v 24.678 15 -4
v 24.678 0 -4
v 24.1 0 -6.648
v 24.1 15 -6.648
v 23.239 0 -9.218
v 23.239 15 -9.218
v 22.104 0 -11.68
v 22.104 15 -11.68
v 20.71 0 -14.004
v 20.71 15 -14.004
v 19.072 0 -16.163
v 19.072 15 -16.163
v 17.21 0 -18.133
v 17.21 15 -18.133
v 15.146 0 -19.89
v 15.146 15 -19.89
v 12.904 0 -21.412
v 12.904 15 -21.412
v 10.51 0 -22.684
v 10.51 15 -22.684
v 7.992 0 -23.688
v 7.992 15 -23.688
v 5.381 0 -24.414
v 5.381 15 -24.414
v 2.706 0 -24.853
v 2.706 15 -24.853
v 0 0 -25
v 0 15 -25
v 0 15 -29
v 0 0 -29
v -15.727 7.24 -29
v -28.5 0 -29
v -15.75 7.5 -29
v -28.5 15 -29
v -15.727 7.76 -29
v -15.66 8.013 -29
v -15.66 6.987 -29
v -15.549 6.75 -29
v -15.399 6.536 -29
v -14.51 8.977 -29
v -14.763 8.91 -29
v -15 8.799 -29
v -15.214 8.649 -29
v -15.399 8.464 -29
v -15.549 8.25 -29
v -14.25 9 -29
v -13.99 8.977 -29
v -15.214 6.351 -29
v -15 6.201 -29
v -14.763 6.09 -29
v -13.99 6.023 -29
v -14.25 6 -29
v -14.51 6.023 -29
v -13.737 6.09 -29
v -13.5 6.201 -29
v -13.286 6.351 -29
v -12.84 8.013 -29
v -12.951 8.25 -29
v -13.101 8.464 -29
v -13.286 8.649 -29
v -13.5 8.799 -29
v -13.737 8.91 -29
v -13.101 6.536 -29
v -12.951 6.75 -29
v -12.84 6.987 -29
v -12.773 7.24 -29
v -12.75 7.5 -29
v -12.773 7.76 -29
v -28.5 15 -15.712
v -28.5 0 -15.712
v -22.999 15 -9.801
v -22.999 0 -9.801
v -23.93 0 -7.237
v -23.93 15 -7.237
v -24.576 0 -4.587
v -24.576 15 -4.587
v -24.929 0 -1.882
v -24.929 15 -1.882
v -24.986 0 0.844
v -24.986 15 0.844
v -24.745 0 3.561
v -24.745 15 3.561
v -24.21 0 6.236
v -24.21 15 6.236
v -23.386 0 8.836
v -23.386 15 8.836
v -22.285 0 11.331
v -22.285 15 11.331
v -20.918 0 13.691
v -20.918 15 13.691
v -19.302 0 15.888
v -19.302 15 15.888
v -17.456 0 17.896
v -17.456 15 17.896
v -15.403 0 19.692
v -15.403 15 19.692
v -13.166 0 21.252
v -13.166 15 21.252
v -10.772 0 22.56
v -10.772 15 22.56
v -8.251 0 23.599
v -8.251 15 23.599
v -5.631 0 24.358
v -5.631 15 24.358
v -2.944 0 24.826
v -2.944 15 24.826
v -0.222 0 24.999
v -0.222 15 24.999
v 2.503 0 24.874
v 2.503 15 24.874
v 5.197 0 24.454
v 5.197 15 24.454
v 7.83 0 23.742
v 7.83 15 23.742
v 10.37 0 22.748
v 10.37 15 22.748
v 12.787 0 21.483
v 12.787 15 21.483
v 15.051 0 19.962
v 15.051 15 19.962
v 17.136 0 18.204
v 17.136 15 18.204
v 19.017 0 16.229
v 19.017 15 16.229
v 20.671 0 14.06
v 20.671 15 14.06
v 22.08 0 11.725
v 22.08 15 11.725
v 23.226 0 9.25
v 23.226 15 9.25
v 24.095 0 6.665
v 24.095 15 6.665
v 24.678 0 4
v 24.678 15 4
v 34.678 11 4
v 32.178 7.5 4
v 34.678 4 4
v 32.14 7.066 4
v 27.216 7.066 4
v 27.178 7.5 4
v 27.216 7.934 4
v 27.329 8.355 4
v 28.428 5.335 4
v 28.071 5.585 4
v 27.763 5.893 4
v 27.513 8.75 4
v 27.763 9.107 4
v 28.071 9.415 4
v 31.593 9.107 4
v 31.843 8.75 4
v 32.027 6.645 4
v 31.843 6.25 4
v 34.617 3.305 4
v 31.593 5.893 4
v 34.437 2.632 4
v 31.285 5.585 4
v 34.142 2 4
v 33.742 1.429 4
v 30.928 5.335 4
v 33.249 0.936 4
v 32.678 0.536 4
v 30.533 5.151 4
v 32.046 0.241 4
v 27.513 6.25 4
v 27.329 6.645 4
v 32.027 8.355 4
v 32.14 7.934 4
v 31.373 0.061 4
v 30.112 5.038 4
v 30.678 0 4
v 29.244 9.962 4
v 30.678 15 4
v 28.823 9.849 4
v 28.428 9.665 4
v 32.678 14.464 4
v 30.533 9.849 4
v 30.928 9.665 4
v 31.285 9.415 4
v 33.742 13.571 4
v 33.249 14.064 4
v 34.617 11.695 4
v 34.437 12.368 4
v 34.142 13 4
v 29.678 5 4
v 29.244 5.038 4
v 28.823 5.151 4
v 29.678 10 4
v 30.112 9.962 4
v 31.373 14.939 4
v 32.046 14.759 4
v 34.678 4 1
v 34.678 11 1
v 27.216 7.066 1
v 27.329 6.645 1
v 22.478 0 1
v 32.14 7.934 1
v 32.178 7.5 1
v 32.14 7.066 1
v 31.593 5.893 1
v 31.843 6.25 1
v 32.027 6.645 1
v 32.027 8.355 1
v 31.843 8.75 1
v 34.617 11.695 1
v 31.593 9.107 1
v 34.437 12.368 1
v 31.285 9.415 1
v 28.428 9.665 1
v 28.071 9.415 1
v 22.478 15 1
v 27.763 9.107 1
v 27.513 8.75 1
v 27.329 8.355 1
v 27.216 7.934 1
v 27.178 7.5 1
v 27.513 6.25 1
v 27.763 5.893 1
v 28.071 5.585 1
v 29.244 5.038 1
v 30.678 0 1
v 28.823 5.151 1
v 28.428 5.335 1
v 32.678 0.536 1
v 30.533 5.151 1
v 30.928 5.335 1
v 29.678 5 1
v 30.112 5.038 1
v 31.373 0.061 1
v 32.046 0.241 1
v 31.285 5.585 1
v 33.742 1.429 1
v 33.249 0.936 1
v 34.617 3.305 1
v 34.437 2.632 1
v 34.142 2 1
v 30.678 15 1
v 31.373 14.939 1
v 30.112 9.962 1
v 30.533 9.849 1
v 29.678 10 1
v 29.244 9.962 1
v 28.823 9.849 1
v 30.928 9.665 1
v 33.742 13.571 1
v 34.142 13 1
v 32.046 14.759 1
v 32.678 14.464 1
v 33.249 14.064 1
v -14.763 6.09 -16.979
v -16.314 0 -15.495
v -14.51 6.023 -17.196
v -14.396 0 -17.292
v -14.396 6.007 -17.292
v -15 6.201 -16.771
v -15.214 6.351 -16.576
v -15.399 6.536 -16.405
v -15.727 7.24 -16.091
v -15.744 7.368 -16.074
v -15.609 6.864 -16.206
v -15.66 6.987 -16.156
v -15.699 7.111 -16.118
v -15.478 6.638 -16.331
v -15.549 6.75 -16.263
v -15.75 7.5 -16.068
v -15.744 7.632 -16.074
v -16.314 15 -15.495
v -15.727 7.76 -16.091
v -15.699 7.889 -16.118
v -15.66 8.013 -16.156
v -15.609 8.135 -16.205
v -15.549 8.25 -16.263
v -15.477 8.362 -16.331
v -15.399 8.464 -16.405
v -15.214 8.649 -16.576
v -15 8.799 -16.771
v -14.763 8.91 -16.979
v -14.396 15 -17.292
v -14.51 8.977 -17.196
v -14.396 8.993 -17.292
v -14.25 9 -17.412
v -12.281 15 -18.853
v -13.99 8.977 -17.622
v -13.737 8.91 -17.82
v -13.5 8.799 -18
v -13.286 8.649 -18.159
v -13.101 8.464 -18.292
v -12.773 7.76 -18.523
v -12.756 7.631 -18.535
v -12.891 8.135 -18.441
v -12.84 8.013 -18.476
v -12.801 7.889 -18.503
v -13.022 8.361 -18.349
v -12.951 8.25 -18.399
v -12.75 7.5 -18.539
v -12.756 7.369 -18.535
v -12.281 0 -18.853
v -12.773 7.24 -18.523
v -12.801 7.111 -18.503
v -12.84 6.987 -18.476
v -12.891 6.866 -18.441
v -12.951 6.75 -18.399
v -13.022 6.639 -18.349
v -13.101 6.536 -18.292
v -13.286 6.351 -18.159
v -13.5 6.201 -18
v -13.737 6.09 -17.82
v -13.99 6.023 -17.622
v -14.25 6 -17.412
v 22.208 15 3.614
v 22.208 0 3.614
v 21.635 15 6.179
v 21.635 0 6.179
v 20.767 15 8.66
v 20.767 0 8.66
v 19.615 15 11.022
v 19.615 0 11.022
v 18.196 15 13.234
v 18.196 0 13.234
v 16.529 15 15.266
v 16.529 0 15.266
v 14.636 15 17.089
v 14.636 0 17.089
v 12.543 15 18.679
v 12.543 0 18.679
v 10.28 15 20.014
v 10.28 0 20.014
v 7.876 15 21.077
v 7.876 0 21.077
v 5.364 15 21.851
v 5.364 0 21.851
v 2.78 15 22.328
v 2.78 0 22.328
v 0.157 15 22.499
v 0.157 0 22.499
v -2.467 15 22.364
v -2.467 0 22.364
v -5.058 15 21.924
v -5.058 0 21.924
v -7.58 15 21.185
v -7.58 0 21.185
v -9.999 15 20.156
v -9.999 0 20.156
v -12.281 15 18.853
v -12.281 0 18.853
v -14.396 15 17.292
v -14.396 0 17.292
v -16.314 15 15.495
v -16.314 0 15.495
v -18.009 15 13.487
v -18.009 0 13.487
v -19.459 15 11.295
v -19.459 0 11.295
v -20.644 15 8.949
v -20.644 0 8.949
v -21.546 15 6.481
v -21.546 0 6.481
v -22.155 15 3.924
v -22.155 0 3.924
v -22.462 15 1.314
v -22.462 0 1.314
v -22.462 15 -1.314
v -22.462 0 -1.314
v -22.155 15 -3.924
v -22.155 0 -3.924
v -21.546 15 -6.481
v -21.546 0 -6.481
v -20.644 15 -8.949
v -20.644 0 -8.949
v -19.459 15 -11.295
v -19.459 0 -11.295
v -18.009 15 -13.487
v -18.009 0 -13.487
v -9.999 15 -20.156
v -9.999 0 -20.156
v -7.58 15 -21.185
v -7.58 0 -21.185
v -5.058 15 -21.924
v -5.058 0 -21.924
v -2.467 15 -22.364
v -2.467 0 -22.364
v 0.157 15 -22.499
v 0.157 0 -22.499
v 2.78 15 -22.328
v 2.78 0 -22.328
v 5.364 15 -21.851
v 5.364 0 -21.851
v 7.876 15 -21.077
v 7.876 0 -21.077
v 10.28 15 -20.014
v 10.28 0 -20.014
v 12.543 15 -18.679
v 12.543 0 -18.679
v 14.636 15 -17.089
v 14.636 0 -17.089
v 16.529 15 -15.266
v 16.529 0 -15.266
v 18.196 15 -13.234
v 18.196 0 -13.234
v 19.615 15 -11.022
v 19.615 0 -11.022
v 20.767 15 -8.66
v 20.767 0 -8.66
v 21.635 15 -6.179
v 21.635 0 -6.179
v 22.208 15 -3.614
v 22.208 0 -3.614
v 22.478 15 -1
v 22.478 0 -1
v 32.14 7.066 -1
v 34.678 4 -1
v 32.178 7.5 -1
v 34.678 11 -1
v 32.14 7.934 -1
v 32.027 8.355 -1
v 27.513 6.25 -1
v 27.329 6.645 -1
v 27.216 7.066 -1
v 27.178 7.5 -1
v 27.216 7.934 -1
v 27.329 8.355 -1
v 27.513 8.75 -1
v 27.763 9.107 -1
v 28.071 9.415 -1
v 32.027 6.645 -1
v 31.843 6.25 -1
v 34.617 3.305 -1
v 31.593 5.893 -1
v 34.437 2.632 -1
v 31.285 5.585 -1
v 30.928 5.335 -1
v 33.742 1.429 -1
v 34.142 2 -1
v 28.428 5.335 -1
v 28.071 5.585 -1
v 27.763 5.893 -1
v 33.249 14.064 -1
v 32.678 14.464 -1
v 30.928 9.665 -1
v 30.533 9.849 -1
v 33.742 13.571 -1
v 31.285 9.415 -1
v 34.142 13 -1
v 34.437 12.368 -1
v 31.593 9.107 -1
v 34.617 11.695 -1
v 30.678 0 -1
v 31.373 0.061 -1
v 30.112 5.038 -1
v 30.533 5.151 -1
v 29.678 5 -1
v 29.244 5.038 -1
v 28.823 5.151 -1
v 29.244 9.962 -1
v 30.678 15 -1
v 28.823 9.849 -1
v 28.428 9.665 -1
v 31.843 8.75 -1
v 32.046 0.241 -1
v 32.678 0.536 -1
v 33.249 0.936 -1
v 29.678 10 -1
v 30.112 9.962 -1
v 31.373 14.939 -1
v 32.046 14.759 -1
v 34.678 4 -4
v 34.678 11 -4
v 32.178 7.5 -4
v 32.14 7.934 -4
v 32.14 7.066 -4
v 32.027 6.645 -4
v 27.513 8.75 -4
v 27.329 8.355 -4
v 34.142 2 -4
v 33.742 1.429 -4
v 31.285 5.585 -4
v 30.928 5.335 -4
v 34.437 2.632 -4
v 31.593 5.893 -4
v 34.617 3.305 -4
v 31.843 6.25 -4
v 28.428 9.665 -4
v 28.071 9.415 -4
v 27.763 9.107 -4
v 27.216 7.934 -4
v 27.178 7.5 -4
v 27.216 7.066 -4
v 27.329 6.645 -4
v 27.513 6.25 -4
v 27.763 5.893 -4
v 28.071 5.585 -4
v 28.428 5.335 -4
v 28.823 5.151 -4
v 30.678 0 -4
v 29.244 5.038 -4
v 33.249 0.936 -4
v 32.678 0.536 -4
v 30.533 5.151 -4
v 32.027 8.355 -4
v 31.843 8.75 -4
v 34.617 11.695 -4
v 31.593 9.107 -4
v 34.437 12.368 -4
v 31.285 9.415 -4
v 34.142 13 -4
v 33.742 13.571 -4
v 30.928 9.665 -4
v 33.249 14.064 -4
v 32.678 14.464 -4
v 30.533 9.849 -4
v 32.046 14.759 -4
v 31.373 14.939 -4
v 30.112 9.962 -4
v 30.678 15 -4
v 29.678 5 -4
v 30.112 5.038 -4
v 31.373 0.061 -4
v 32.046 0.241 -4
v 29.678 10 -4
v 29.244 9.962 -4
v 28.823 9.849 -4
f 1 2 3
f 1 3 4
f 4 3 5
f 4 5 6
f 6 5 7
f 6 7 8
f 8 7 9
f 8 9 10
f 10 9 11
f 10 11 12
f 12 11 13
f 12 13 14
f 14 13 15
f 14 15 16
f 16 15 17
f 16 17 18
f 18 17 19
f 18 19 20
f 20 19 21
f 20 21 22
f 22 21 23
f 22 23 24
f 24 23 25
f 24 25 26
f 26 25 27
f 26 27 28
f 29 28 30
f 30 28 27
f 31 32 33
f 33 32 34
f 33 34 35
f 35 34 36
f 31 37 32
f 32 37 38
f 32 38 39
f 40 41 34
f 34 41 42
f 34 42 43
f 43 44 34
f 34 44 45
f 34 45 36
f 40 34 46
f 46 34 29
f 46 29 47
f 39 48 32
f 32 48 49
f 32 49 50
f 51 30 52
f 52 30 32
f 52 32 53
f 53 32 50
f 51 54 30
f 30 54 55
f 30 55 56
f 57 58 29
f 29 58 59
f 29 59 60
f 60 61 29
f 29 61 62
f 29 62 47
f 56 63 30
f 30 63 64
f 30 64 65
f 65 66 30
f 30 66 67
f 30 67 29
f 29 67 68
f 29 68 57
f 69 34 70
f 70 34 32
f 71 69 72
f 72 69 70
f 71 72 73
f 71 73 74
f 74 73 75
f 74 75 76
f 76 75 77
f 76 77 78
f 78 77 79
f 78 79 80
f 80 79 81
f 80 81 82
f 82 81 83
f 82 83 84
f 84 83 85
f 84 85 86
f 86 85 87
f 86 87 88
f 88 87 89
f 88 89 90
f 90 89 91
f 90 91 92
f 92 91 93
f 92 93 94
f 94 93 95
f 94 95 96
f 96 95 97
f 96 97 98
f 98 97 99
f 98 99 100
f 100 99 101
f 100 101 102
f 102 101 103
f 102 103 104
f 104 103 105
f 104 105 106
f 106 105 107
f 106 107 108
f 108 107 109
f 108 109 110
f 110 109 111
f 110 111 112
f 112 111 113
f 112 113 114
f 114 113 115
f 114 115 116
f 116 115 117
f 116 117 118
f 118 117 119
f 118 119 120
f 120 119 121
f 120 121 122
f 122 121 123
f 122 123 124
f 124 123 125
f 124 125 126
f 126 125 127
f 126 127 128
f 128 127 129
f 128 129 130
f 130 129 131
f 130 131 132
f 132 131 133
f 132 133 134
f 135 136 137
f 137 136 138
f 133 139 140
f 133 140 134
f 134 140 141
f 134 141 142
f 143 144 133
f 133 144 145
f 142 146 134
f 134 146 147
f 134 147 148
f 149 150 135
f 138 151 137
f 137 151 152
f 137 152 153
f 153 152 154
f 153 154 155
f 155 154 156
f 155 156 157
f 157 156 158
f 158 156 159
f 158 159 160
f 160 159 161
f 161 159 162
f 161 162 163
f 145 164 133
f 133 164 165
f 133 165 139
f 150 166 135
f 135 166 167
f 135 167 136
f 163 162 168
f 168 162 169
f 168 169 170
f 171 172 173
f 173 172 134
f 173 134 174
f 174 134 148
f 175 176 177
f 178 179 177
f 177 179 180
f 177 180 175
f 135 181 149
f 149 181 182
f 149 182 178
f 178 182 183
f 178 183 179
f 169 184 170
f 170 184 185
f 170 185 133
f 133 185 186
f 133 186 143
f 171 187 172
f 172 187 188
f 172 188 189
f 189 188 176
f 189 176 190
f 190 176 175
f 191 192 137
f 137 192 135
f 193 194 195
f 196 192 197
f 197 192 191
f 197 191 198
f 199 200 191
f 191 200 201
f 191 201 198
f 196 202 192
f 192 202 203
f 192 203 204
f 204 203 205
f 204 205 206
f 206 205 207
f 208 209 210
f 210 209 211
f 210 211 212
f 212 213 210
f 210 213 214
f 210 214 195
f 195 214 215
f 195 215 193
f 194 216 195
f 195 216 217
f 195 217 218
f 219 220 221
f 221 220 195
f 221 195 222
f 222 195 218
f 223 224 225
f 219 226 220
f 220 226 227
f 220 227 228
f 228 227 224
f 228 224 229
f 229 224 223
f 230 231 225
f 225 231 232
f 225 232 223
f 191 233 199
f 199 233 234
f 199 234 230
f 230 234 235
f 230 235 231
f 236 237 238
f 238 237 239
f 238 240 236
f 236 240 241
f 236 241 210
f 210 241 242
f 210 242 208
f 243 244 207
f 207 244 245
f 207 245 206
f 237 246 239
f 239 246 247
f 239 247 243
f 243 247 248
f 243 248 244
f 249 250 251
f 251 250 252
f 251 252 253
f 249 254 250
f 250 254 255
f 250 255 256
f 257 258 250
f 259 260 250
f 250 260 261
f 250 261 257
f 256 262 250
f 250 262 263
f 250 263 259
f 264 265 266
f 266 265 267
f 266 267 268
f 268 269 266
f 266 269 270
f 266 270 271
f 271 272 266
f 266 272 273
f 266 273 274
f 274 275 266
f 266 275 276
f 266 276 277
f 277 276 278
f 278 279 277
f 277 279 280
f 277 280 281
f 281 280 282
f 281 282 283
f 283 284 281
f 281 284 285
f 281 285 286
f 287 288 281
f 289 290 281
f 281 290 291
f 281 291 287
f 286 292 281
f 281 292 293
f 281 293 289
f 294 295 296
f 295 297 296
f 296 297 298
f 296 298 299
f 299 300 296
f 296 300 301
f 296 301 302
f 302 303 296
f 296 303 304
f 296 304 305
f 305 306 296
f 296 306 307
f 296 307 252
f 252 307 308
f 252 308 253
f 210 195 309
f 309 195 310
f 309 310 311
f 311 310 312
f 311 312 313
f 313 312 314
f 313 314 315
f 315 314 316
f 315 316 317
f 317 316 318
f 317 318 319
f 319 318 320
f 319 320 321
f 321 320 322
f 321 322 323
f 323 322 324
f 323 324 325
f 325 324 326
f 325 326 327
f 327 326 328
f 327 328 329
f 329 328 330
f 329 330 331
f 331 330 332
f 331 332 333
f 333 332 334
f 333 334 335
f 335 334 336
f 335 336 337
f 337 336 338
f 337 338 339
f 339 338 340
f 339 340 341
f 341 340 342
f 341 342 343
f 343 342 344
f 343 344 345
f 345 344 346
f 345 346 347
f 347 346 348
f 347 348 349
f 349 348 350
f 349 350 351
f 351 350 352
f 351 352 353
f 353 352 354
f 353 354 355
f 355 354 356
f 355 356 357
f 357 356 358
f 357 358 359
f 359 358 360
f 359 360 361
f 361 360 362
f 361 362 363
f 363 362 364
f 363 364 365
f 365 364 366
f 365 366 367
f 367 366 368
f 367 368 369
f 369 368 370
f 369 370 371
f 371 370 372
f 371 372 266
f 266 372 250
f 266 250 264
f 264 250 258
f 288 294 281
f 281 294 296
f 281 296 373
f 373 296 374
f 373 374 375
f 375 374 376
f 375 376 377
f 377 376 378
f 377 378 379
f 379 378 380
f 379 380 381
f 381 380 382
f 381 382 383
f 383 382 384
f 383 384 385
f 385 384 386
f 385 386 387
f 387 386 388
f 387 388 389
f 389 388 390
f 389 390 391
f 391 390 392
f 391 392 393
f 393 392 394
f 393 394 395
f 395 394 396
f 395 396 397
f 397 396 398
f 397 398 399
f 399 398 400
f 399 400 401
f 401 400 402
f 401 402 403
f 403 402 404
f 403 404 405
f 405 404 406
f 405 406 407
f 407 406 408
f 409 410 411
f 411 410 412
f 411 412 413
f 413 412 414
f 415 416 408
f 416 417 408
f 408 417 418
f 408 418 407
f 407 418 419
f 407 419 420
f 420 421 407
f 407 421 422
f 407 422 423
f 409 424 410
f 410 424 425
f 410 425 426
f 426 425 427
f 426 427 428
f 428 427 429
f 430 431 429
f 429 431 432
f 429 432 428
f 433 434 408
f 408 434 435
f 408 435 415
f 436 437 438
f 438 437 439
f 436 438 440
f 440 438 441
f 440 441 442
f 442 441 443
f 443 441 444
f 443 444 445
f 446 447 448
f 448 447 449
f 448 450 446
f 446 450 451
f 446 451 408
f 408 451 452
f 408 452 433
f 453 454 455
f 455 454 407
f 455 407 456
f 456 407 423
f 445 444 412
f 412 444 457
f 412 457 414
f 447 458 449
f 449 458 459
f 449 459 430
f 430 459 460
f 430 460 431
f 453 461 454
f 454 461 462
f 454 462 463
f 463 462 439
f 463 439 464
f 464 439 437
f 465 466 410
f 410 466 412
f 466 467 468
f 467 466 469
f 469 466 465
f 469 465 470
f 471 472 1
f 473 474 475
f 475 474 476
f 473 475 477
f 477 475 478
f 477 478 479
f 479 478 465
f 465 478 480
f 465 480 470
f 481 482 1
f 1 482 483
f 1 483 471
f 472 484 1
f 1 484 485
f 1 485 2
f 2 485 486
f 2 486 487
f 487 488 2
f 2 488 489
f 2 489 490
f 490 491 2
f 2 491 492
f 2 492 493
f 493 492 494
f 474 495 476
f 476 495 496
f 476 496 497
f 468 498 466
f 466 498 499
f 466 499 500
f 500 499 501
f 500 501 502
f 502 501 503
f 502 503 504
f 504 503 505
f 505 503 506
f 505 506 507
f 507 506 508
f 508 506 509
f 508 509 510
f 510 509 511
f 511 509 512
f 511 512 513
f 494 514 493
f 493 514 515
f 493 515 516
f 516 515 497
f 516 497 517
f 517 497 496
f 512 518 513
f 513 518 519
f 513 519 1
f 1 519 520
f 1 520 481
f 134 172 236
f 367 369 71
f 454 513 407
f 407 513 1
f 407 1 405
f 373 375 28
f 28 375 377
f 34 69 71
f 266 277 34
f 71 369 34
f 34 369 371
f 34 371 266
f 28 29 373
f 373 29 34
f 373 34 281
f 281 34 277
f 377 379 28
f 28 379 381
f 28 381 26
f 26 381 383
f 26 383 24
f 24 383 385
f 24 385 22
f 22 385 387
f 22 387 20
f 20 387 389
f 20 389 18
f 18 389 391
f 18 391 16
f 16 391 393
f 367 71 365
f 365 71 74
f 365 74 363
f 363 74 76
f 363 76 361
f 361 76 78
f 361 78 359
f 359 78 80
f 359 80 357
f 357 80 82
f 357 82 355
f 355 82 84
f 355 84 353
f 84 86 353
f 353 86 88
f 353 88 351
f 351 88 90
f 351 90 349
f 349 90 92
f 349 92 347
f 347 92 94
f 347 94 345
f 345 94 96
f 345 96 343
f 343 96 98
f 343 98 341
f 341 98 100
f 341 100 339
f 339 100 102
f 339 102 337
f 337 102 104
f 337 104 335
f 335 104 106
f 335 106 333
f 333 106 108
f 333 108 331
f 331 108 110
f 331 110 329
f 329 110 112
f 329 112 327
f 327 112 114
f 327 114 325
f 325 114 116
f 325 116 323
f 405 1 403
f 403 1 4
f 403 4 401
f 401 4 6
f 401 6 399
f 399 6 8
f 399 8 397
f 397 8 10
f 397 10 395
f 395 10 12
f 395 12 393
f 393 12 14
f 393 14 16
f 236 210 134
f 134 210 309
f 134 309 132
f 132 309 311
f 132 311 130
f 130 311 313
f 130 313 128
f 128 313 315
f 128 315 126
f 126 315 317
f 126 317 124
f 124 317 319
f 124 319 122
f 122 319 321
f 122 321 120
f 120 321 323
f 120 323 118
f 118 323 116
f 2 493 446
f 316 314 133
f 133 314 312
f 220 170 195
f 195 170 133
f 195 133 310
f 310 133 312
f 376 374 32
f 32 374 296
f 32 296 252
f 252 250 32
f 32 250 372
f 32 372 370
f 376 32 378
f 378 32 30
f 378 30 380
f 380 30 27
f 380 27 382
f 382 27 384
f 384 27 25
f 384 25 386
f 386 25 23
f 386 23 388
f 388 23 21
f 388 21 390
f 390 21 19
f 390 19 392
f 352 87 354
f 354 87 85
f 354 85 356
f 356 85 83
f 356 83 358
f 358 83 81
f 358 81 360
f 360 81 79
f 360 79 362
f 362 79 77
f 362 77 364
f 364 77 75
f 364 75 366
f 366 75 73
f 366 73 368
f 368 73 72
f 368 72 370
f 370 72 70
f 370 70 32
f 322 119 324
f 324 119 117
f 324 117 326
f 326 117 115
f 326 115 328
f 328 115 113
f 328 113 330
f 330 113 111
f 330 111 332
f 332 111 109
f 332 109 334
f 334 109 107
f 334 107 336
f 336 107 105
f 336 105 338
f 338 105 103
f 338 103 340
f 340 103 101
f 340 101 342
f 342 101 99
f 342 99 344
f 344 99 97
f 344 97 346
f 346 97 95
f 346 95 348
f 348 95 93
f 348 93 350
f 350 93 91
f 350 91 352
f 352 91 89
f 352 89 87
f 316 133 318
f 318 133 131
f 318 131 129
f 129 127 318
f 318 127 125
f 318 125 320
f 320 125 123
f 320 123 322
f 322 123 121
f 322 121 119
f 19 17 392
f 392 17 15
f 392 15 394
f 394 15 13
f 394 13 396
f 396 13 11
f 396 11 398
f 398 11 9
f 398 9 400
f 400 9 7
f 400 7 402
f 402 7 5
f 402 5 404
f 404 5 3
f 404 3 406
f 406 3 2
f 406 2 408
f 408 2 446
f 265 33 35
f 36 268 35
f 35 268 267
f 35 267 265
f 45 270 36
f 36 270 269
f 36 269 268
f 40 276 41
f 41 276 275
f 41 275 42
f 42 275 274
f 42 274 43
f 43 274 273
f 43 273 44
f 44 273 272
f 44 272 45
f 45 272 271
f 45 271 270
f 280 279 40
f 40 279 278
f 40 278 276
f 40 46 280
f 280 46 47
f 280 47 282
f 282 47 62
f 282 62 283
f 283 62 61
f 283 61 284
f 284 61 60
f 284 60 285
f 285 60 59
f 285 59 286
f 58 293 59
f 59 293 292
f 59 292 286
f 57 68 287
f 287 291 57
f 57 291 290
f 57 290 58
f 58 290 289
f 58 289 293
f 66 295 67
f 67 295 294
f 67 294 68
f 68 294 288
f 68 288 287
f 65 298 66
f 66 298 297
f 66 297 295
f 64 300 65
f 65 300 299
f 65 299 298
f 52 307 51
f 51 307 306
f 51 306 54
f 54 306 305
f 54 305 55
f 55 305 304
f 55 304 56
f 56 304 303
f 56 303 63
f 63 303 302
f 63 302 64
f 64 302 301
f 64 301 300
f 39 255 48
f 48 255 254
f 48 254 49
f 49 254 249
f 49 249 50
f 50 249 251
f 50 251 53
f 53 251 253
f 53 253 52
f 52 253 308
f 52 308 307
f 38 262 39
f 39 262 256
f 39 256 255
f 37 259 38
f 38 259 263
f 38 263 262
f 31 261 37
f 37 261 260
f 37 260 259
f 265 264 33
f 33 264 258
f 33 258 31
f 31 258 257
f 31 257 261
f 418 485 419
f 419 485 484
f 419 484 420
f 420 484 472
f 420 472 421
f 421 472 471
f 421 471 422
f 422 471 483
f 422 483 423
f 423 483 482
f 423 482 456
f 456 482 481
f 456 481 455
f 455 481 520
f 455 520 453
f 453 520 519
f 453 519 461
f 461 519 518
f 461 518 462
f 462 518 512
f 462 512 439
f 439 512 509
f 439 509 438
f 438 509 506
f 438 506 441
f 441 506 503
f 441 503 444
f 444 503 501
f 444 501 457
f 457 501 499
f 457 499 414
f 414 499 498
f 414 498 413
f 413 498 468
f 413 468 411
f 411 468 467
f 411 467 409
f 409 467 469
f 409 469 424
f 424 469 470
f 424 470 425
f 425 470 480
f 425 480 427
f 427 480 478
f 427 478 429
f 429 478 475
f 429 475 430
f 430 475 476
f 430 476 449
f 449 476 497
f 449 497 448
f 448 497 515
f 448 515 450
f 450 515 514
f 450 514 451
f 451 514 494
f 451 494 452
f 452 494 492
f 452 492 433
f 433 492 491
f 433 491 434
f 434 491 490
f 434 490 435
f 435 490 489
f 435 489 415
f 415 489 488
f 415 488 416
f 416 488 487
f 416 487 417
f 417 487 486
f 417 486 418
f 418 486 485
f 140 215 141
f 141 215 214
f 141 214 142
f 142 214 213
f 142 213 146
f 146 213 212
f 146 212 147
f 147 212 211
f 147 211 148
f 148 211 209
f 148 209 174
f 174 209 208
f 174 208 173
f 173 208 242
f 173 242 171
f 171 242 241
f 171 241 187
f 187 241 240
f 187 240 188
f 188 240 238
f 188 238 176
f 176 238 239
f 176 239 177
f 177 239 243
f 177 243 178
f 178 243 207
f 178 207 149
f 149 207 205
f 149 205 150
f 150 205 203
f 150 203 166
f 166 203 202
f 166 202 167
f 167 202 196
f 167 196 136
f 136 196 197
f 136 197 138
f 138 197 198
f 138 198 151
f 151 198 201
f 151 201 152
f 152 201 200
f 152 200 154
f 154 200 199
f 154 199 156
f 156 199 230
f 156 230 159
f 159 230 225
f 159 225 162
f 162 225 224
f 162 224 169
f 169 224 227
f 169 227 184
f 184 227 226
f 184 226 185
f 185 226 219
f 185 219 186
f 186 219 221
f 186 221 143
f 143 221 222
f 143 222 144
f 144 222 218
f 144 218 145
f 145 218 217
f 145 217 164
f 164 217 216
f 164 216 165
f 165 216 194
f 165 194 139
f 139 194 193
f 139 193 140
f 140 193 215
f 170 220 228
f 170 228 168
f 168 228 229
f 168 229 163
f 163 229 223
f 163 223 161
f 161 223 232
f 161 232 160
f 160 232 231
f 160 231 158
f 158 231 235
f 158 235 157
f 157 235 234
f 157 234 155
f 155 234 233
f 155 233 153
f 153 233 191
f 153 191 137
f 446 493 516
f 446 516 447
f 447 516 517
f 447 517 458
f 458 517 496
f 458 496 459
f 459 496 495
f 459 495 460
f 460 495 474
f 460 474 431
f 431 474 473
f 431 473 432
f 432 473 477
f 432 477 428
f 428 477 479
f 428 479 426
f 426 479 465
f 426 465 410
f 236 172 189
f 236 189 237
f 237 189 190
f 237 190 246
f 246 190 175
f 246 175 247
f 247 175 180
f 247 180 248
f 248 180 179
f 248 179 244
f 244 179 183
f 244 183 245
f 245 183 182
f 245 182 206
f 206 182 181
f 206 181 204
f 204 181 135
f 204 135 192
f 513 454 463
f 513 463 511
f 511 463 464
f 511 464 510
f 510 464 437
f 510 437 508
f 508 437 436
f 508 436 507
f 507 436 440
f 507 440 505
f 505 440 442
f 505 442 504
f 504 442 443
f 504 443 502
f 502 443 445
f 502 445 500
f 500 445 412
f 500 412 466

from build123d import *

# Parameters (mm, degrees)
SALIENTE_EXTRUIR1_DEPTH = 15
CROQUIS2_R              = 1.5
CORTAR_EXTRUIR1_DEPTH   = 17
CROQUIS3_R              = 2.5
CORTAR_EXTRUIR2_DEPTH   = 17
REDONDEO1_R             = 4


with BuildPart() as part:
    # Croquis1 → Saliente-Extruir1 (new body)
    with BuildSketch(Plane(origin=(0, 0, 0), x_dir=(1, 0, 0), z_dir=(0, 1, 0))):
        with BuildLine():
            Line((0, 25), (0, 29))
            Line((0, 29), (-28.5, 29))
            Line((-28.5, 29), (-28.5, 15.712290503))
            Line((-28.5, 15.712290503), (-22.998889471, 9.800565448))
            ThreePointArc((-22.998889471, 9.800565448), (-6.951164798, -24.014189721), (24.677925359, -4))
            Line((24.677925359, -4), (34.677925359, -4))
            Line((34.677925359, -4), (34.677925359, -1))
            Line((34.677925359, -1), (22.477766793, -1))
            ThreePointArc((22.477766793, -1), (-22.5, 0), (22.477766793, 1))
            Line((22.477766793, 1), (34.677925359, 1))
            Line((34.677925359, 1), (34.677925359, 4))
            Line((34.677925359, 4), (24.677925359, 4))
            ThreePointArc((24.677925359, 4), (16.201851746, 19.039432765), (0, 25))
        make_face()
    extrude(amount=SALIENTE_EXTRUIR1_DEPTH)

    # Croquis2 → Cortar-Extruir1 (cut)
    with BuildSketch(Plane(origin=(0, 0, -29), x_dir=(-1, 0, 0), z_dir=(0, 0, -1))):
        with Locations((14.25, 7.5)):
            Circle(CROQUIS2_R)
    extrude(amount=-CORTAR_EXTRUIR1_DEPTH, mode=Mode.SUBTRACT)

    # Croquis3 → Cortar-Extruir2 (cut)
    with BuildSketch(Plane(origin=(0, 0, -4), x_dir=(-1, 0, 0), z_dir=(0, 0, -1))):
        with Locations((-29.677925359, 7.5)):
            Circle(CROQUIS3_R)
    extrude(amount=-CORTAR_EXTRUIR2_DEPTH, mode=Mode.SUBTRACT)

    # Redondeo1
    redondeo1_edges = [part.edges().sort_by_distance(p)[0] for p in [
        (34.677925359, 0, -2.5),
        (34.677925359, 0, 2.5),
        (34.677925359, 15, 2.5),
        (34.677925359, 15, -2.5),
    ]]
    fillet(redondeo1_edges, radius=REDONDEO1_R)


solid = part.part
